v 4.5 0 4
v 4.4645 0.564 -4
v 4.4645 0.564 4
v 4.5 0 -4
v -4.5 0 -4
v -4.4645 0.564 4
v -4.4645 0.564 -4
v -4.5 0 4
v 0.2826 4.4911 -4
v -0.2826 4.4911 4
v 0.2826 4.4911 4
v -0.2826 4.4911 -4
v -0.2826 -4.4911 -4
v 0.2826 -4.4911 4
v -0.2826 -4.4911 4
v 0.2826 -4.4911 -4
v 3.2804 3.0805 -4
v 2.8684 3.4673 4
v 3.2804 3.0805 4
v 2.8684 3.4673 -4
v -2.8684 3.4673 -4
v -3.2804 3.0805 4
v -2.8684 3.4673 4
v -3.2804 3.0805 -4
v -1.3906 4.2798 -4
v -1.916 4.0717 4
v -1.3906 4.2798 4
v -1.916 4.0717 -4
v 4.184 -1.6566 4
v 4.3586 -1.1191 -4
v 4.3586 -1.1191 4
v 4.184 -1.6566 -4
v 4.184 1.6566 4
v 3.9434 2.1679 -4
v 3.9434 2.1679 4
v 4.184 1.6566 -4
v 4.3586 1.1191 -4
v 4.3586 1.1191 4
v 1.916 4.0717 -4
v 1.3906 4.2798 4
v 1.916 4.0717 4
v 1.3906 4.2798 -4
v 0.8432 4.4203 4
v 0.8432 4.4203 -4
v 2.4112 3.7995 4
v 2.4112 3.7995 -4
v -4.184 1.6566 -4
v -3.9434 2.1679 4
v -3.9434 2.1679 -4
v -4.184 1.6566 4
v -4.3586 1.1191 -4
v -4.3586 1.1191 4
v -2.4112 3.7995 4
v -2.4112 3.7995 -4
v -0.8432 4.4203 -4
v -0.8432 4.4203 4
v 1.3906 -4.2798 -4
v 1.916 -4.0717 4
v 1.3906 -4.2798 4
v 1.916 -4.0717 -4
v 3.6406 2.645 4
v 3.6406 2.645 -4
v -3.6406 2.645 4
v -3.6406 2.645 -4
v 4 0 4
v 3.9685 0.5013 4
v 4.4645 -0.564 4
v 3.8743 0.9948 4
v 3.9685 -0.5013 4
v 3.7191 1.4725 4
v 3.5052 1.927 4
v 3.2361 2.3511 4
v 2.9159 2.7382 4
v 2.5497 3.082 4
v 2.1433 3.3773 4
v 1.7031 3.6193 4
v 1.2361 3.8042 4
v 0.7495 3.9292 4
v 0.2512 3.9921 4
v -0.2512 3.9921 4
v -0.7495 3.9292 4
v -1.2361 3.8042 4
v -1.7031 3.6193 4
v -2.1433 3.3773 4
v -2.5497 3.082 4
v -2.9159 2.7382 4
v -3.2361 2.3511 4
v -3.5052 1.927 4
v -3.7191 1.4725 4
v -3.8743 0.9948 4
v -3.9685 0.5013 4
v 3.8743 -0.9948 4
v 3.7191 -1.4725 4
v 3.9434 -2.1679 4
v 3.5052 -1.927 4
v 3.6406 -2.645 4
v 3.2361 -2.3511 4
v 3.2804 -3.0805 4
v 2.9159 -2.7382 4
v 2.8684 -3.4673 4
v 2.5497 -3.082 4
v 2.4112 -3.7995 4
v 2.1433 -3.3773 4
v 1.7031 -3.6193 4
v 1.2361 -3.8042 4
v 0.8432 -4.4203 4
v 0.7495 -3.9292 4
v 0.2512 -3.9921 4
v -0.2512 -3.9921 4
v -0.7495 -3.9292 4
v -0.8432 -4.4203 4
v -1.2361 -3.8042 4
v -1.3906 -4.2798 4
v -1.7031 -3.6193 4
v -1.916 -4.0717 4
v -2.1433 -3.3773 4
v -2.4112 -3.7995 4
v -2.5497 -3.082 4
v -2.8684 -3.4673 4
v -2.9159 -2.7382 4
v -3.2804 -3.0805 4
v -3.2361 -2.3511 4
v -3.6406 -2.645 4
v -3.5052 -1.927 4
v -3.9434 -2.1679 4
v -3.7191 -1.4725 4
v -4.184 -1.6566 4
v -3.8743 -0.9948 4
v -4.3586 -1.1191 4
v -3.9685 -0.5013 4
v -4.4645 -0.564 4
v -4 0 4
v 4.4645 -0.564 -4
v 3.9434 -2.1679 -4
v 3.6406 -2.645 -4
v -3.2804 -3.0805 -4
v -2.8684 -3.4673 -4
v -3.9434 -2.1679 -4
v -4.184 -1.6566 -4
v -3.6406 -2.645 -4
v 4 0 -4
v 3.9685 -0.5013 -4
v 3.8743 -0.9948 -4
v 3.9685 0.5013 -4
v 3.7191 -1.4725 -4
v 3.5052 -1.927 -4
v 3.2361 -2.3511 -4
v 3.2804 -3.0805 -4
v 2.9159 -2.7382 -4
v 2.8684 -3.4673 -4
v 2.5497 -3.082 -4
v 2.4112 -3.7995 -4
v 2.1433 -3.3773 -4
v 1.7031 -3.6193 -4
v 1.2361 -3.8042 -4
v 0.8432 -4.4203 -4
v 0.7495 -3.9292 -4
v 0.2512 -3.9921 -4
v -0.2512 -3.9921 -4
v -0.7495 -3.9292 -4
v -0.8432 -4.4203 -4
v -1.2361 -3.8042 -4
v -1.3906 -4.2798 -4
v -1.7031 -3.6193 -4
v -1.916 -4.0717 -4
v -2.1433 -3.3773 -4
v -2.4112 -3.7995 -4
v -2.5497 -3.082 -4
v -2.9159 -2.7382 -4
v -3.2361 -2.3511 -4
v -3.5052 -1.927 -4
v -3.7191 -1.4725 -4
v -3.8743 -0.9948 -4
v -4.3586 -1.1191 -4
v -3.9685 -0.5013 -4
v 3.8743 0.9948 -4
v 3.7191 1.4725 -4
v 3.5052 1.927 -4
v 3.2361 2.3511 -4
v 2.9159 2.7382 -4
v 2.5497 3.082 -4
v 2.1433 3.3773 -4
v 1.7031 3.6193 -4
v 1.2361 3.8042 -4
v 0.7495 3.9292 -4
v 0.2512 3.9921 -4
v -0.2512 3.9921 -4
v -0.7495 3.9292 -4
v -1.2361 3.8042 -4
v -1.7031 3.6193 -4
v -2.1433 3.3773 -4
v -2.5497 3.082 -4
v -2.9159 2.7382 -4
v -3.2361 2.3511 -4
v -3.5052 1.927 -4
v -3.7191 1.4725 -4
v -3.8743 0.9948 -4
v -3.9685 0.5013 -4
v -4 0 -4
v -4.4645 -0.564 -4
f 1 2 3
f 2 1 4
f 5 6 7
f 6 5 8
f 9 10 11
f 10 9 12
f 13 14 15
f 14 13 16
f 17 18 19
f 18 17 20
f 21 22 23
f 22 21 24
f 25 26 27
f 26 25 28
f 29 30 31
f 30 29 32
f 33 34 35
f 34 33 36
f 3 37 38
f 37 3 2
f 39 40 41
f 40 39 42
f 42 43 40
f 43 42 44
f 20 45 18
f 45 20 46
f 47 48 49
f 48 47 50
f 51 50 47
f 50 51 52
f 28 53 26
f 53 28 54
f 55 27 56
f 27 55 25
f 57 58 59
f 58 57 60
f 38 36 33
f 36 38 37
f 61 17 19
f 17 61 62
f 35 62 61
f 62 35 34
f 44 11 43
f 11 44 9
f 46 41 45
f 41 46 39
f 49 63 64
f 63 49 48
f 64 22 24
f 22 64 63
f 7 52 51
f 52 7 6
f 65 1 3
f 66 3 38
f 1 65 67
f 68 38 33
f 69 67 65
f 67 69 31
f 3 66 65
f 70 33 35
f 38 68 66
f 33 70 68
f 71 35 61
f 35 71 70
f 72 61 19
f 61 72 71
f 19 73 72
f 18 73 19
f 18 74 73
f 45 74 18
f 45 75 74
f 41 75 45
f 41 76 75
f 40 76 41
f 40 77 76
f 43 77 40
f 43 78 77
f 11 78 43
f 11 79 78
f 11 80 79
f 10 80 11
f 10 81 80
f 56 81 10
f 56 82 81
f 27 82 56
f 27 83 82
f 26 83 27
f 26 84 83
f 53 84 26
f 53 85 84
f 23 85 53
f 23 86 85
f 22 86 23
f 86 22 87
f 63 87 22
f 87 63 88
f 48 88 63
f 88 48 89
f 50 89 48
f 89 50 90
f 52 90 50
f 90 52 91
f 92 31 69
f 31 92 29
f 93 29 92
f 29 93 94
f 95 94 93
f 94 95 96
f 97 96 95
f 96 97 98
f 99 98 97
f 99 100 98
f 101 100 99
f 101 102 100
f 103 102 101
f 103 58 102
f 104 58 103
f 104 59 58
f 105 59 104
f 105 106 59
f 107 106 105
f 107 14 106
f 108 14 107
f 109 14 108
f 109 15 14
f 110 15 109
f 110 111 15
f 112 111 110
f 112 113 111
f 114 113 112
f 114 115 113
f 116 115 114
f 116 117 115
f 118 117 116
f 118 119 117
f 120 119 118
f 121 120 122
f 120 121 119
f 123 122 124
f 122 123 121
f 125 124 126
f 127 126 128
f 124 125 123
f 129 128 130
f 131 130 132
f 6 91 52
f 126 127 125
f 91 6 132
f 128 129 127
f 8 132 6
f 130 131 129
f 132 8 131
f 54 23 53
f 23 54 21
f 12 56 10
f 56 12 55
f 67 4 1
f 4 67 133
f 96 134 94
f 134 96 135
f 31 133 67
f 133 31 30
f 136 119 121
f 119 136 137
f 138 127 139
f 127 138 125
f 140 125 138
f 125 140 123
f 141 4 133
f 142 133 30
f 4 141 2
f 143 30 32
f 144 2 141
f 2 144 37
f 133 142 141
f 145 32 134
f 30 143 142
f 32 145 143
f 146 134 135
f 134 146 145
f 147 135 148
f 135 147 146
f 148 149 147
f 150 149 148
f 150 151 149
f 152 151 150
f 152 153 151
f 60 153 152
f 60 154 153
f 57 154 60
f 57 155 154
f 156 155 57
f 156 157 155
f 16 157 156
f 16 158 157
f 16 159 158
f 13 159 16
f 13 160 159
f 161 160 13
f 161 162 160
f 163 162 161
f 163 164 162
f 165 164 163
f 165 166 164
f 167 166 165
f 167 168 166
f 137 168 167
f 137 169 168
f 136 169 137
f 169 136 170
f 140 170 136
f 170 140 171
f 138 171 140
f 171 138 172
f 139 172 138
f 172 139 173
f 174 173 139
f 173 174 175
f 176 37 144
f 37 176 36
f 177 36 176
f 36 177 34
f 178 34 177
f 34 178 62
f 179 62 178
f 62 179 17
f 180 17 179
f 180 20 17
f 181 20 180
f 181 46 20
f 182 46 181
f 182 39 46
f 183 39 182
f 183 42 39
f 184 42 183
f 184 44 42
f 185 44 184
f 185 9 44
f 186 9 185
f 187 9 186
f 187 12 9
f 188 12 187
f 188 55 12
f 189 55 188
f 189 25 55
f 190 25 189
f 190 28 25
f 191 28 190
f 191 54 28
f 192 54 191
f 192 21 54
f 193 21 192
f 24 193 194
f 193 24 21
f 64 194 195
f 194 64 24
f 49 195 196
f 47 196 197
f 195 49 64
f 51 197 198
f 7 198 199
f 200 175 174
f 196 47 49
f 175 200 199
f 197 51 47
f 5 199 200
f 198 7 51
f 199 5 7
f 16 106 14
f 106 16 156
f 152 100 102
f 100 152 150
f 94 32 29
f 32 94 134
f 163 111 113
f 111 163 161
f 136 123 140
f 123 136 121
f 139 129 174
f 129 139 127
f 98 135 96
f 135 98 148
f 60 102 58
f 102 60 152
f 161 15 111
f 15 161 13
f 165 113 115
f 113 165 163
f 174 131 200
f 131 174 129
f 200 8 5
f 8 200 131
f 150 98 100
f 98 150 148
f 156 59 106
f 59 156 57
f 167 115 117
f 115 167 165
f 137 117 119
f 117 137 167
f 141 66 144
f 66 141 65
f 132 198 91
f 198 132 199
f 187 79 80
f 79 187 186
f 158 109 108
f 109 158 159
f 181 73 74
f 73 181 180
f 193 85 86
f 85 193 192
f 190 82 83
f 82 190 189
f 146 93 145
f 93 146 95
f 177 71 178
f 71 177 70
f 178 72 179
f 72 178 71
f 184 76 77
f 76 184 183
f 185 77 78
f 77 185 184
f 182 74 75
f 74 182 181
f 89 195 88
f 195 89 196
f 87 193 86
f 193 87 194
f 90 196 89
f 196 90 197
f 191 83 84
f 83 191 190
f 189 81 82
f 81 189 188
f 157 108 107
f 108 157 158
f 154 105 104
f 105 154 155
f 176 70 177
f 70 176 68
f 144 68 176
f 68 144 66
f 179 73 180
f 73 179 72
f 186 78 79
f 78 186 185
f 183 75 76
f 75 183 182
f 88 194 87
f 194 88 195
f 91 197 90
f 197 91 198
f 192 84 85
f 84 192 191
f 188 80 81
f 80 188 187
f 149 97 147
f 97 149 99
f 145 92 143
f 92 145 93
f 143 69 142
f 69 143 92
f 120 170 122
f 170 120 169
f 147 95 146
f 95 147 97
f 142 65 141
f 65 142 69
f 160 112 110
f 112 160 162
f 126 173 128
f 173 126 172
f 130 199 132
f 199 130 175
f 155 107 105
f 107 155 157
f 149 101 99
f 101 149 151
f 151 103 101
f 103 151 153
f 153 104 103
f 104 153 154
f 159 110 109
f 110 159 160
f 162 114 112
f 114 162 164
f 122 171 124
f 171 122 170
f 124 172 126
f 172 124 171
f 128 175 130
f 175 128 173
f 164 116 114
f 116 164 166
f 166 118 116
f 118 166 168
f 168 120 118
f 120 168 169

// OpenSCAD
$fn = 50;


difference() {
	union() {
		translate(v = [0, 0, -4.0000000000]) {
			cylinder(h = 8, r = 4.5000000000);
		}
	}
	union() {
		translate(v = [0, 0, -100.0000000000]) {
			cylinder(h = 200, r = 4);
		}
	}
}
